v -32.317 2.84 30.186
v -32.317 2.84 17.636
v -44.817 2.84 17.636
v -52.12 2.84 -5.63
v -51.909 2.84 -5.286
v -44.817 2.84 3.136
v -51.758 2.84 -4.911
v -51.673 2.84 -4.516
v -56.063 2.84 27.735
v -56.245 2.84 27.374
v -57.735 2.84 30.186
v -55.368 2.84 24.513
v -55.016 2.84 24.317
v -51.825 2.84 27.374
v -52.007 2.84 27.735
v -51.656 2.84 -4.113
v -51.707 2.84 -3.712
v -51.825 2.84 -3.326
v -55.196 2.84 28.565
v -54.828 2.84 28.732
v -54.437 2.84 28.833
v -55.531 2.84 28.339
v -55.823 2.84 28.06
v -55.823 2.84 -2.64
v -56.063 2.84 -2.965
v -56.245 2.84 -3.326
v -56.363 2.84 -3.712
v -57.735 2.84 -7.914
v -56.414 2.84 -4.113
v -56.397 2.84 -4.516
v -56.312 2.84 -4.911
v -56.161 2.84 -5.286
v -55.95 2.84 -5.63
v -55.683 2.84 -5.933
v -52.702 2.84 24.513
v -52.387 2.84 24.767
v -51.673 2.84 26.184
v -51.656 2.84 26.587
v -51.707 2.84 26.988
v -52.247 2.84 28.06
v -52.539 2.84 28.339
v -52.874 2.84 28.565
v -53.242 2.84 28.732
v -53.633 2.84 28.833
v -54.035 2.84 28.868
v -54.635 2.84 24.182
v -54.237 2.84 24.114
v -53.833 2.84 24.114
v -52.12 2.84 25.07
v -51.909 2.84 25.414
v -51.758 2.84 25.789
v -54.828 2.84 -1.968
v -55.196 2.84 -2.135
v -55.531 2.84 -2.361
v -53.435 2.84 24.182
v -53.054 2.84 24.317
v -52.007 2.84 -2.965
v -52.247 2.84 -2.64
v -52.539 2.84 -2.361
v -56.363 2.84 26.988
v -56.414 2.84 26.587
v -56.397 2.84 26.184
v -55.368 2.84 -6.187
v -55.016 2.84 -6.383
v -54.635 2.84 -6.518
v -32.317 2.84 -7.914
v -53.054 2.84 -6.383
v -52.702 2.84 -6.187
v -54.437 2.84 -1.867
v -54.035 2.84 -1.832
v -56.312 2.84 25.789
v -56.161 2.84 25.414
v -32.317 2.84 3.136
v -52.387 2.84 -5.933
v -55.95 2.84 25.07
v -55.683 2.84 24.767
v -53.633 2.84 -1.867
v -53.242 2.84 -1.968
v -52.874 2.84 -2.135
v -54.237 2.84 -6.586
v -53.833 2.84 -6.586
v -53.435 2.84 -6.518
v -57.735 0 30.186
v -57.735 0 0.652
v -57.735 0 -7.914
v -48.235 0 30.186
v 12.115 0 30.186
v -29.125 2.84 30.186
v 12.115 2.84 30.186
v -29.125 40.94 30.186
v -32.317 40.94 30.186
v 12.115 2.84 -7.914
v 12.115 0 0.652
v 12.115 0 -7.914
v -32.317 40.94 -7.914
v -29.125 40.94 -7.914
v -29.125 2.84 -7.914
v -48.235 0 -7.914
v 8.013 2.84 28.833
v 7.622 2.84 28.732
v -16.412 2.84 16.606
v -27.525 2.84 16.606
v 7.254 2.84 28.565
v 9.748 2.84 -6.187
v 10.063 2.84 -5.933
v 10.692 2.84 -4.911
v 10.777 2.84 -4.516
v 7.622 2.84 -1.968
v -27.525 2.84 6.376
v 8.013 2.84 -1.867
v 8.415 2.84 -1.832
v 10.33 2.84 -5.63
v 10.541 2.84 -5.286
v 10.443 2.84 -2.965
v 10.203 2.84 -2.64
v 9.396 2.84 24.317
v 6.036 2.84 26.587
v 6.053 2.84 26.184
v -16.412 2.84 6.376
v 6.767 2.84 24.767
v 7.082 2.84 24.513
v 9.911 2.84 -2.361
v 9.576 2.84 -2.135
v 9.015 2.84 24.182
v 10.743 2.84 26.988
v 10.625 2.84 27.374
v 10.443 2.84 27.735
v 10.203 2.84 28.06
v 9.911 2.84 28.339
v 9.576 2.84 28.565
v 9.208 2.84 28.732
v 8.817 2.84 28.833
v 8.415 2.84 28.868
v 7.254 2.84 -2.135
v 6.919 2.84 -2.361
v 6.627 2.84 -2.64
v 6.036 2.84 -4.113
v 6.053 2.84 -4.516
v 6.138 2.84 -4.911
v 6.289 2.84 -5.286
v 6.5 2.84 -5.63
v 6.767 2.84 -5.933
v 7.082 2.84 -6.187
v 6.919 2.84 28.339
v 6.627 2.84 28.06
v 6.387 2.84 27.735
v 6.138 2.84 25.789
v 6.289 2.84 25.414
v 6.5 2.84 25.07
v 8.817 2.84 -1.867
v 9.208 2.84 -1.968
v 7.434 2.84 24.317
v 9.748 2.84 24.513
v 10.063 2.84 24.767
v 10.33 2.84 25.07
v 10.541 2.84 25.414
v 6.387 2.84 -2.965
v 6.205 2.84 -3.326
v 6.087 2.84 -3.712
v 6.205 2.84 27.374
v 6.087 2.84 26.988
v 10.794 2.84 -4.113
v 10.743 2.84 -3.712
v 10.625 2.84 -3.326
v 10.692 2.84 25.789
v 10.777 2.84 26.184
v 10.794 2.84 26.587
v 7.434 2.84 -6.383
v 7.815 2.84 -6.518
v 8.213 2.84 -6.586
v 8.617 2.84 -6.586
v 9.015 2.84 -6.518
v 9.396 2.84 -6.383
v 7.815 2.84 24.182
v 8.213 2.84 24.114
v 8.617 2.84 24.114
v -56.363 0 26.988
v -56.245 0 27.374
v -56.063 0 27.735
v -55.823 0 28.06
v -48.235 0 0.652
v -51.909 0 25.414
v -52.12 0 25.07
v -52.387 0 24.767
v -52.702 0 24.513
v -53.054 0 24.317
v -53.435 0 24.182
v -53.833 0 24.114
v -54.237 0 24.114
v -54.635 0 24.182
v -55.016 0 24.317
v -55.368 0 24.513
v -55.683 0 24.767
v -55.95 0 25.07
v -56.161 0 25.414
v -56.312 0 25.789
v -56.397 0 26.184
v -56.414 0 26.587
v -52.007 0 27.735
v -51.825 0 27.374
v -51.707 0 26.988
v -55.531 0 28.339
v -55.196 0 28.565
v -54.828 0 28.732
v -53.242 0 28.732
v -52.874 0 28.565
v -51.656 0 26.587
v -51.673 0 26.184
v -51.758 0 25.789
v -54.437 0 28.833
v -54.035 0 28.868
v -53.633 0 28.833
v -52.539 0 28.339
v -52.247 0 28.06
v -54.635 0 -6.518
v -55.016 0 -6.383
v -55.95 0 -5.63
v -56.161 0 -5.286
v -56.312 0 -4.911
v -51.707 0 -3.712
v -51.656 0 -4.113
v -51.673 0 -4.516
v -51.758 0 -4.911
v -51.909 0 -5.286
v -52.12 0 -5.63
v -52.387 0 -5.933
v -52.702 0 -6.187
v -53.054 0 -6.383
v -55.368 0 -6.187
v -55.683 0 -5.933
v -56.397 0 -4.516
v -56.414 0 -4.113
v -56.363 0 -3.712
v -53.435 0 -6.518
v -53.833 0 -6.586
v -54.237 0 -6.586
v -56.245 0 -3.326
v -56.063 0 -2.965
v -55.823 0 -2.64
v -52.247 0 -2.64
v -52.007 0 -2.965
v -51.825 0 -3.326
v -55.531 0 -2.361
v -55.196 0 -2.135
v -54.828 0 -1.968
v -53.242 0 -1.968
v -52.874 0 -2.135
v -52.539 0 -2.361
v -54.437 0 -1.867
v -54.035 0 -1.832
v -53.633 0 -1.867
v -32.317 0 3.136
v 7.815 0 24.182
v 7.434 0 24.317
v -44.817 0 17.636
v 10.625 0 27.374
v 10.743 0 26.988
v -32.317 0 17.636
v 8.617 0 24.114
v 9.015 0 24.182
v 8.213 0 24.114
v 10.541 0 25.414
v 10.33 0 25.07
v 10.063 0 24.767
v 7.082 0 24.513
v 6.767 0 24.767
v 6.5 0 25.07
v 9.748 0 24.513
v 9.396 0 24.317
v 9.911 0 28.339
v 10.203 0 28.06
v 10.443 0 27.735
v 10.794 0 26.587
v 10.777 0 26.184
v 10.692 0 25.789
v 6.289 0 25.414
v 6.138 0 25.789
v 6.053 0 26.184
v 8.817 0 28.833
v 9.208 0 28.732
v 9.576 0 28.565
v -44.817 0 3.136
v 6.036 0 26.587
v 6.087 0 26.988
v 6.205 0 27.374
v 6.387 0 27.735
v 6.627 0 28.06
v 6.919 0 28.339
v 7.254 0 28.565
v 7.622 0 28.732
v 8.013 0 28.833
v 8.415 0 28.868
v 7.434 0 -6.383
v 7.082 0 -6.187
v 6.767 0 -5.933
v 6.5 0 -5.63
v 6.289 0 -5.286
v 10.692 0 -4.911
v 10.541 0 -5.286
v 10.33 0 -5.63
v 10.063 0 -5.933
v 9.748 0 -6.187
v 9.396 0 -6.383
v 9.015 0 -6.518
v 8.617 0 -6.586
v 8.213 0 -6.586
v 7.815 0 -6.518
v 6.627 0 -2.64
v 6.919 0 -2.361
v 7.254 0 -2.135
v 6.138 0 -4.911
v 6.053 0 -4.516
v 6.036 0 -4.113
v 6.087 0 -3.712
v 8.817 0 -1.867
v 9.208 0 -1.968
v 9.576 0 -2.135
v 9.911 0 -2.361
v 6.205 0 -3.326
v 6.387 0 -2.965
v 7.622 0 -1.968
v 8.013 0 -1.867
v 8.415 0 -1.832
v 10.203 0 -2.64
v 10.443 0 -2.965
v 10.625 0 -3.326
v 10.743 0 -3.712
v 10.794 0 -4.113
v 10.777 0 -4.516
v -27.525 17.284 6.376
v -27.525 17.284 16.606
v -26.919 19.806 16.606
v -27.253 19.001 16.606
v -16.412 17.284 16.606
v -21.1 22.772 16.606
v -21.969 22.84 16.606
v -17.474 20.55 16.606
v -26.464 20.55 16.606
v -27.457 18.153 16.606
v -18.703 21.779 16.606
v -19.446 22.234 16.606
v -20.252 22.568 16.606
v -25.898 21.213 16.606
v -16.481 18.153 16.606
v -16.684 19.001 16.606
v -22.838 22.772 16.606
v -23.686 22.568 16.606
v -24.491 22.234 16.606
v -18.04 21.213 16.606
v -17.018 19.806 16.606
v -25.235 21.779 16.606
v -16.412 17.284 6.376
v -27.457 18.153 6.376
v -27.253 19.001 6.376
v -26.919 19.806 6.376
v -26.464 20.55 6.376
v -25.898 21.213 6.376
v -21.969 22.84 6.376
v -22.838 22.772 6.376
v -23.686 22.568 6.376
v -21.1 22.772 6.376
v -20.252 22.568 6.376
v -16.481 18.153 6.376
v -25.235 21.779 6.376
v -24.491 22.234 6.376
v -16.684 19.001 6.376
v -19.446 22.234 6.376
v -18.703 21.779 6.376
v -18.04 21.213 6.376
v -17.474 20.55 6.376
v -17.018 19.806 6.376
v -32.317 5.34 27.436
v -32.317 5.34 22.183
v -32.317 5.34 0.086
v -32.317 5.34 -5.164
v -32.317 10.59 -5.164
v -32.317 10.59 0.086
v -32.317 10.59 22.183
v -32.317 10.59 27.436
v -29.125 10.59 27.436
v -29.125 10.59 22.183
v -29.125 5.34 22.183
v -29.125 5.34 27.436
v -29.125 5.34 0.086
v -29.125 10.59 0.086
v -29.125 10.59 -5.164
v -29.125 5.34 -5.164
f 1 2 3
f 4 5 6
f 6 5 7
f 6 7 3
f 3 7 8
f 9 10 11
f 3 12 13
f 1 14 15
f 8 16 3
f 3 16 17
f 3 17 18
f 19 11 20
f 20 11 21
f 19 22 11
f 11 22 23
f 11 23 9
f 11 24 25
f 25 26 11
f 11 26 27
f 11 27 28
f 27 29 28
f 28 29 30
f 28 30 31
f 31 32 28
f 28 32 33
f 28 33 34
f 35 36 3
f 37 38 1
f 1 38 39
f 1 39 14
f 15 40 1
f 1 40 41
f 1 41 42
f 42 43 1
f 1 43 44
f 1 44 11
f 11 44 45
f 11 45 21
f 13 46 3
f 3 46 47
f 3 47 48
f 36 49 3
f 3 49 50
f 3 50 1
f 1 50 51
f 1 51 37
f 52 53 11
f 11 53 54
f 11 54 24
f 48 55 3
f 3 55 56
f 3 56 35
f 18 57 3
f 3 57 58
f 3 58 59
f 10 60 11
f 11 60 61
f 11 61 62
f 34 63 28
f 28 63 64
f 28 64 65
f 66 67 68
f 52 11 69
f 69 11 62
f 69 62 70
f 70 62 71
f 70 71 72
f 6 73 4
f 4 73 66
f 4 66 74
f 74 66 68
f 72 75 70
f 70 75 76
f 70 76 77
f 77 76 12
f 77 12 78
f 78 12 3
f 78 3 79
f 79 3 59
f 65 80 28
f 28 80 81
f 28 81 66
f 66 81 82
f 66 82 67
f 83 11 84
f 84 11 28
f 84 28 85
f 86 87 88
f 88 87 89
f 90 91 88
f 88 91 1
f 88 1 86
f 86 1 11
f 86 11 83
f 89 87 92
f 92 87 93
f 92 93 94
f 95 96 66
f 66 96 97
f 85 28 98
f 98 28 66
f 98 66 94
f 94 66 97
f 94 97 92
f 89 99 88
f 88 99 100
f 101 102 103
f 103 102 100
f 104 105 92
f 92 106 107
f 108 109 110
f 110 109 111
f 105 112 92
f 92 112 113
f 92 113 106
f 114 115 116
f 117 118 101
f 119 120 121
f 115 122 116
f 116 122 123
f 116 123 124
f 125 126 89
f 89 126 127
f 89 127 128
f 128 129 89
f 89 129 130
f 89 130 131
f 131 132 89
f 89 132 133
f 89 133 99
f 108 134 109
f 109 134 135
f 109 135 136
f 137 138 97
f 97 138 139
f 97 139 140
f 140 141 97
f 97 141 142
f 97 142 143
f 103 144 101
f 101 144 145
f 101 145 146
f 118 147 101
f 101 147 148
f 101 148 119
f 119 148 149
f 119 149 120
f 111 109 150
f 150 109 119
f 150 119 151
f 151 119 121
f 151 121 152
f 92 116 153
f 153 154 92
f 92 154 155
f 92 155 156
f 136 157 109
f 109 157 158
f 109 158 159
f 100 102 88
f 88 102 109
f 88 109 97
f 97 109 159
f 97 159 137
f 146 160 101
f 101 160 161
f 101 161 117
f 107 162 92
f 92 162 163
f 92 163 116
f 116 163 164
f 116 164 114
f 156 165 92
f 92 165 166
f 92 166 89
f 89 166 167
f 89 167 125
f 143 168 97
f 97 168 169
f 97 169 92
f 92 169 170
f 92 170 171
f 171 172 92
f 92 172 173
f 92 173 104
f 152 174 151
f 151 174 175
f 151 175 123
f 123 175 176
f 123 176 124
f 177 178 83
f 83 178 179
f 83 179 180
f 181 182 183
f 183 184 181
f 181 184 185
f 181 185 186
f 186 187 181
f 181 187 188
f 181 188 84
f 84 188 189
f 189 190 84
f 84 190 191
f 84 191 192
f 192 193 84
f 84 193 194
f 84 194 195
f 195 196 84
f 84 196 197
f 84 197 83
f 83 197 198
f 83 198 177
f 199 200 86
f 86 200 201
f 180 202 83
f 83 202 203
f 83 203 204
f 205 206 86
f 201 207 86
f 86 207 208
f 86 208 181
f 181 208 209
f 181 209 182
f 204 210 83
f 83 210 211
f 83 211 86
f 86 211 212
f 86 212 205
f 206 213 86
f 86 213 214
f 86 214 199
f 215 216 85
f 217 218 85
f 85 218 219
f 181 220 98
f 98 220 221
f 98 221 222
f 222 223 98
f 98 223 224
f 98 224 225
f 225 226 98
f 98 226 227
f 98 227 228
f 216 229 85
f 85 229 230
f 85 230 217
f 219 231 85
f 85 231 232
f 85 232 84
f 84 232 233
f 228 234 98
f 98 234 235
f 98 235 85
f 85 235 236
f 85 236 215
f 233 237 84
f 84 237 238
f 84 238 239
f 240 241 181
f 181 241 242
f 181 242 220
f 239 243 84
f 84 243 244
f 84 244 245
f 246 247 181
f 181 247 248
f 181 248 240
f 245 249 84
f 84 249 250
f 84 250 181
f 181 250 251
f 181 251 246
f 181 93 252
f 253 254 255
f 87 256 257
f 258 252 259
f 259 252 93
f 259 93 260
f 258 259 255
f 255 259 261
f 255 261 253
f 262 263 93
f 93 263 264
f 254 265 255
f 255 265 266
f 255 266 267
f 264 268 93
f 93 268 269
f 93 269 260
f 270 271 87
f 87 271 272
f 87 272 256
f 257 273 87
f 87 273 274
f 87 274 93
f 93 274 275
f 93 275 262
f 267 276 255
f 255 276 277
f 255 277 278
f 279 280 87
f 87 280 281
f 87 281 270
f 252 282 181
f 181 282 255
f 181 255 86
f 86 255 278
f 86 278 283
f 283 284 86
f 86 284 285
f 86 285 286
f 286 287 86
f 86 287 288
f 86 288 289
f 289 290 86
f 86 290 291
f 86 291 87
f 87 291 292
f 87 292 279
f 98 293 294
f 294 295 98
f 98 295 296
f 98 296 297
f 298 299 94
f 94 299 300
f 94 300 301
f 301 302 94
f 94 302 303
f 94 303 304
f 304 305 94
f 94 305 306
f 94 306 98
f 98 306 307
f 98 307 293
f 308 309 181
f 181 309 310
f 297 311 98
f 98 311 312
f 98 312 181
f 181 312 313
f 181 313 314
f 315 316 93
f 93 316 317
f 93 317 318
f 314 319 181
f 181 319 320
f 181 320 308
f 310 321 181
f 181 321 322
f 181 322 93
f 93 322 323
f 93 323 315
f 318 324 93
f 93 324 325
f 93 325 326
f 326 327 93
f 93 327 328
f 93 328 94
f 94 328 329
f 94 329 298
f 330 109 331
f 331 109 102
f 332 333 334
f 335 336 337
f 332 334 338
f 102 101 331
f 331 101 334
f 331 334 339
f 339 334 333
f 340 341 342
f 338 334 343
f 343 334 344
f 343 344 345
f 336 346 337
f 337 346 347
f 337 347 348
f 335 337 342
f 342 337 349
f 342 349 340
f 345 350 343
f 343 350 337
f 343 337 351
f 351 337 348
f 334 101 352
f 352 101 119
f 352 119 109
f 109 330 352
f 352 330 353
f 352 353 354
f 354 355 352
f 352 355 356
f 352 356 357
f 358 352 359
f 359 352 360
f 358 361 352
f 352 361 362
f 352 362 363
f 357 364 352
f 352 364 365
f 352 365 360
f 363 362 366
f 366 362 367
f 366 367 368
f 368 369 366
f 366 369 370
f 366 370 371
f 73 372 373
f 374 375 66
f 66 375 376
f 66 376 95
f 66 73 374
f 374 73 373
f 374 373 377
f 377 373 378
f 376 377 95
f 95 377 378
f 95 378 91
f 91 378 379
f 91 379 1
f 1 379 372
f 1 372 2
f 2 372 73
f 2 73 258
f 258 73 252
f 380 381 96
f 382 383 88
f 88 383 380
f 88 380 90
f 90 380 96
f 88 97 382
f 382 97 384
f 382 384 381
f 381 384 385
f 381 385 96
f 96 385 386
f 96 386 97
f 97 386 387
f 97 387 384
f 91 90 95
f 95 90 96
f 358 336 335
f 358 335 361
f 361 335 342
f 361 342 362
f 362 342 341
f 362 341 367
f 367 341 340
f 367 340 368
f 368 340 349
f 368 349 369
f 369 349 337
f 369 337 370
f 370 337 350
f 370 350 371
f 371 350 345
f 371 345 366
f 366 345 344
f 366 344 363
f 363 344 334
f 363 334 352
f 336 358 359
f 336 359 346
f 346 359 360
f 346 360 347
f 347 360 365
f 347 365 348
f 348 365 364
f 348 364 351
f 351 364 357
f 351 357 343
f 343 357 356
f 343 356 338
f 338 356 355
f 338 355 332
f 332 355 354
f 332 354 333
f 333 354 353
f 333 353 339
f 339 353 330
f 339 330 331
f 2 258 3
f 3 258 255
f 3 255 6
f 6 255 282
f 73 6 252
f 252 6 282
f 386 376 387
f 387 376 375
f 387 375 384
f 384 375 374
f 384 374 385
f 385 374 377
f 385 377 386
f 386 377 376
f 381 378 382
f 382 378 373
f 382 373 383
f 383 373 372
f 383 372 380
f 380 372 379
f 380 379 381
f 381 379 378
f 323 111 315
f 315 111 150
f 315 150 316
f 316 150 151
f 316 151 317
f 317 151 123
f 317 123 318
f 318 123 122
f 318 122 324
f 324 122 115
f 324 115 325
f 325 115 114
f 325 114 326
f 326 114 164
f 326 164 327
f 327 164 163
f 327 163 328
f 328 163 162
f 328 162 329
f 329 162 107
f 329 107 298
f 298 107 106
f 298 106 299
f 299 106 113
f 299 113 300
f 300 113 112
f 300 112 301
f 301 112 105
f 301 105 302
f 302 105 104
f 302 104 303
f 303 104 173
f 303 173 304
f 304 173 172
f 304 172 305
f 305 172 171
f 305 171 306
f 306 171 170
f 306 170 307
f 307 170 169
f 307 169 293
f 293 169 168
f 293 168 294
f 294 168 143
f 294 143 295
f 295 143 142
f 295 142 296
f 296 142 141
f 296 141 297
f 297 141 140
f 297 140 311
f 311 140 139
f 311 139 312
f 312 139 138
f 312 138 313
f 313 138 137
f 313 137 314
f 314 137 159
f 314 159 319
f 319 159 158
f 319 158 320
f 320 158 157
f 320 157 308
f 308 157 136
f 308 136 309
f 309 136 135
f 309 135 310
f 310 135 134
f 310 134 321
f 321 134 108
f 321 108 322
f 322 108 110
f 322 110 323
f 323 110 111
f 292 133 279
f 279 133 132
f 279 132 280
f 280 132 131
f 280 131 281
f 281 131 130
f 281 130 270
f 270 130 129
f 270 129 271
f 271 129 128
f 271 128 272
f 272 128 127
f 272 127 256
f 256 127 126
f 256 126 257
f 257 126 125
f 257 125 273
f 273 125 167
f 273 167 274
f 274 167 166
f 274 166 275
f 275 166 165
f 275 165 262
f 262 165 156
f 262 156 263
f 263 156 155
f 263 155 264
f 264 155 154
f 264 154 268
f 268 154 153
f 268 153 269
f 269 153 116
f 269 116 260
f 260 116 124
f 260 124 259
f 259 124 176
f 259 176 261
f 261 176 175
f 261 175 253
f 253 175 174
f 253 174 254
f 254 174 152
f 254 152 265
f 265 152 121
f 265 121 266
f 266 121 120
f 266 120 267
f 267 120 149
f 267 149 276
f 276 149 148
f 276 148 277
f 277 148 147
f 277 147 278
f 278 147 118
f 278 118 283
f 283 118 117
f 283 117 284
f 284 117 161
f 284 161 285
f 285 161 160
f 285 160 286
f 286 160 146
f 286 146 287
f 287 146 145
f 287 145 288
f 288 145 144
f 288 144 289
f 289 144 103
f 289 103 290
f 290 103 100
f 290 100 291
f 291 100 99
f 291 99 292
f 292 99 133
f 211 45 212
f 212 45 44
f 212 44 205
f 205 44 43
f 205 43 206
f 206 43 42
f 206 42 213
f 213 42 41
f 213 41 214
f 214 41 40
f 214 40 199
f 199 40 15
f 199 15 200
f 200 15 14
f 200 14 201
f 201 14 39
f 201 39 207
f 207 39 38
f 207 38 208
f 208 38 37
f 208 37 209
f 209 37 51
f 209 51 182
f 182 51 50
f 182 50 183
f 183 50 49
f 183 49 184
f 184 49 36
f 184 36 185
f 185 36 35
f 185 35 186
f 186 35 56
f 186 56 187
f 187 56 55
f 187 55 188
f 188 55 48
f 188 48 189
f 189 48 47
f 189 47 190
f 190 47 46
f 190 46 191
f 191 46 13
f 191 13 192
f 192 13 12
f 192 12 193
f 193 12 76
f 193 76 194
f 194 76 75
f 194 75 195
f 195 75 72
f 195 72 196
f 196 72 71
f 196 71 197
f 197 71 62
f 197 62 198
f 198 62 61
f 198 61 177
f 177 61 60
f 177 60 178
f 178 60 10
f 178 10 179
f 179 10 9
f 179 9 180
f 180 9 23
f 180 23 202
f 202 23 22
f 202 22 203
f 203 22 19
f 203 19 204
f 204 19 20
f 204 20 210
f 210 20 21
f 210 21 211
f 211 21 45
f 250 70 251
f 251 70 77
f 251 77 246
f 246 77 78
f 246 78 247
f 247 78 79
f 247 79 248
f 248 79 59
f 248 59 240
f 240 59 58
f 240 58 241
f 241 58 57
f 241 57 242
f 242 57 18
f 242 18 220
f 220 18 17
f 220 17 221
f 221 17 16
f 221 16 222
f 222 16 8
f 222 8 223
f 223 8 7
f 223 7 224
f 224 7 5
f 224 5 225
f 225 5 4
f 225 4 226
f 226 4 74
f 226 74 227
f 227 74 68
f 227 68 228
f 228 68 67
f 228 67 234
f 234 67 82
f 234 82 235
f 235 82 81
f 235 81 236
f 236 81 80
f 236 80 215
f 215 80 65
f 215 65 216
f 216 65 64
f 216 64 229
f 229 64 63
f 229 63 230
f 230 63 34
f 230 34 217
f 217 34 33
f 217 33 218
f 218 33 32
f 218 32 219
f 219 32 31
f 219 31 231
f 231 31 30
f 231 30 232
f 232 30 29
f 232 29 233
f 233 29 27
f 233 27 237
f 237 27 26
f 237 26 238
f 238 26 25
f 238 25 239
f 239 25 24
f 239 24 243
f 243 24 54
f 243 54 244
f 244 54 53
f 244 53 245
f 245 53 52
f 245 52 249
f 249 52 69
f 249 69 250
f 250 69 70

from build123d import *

# Parameters (mm, degrees)
SKETCH1_W           = 69.85
SKETCH1_H           = 38.1
BOSS_EXTRUDE1_DEPTH = 2.84
SKETCH2_W           = 11.1125
SKETCH2_H           = 10.23
BOSS_EXTRUDE5_DEPTH = 20
SKETCH4_W           = 3.192184281
SKETCH4_H           = 38.1
BOSS_EXTRUDE7_DEPTH = 38.1
FILLET1_R           = 5.55625
FILLET2_R           = 5.55625
SKETCH5_W           = 8
SKETCH5_H           = 14.5
CUT_EXTRUDE1_DEPTH  = 38.1
SKETCH6_W           = 5.25
SKETCH6_H           = 5.25
CUT_EXTRUDE2_DEPTH  = 10
SKETCH7_W           = 5.253
SKETCH7_H           = 5.25
CUT_EXTRUDE3_DEPTH  = 10
SKETCH8_R           = 2.38125
CUT_EXTRUDE4_DEPTH  = 10
SKETCH9_R           = 2.38125
CUT_EXTRUDE5_DEPTH  = 10
SKETCH10_W          = 4.5
SKETCH10_H          = 14.5
CUT_EXTRUDE6_DEPTH  = 10
SKETCH12_R          = 2.38125
CUT_EXTRUDE7_DEPTH  = 10
SKETCH13_R          = 2.38125
CUT_EXTRUDE8_DEPTH  = 10


with BuildPart() as part:
    # Sketch1 → Boss-Extrude1 (new body)
    with BuildSketch(Plane(origin=(0, 0, 0), x_dir=(1, 0, 0), z_dir=(0, 1, 0))):
        with Locations((-22.809987281, -11.136378688)):
            Rectangle(SKETCH1_W, SKETCH1_H)
    extrude(amount=BOSS_EXTRUDE1_DEPTH)

    # Sketch2 → Boss-Extrude5 (add)
    with BuildSketch(Plane(origin=(0, 2.84, 0), x_dir=(1, 0, 0), z_dir=(0, 1, 0))):
        with Locations((-21.968737281, -11.491378688)):
            Rectangle(SKETCH2_W, SKETCH2_H)
    extrude(amount=BOSS_EXTRUDE5_DEPTH)

    # Sketch4 → Boss-Extrude7 (add)
    with BuildSketch(Plane(origin=(0, 2.84, 0), x_dir=(1, 0, 0), z_dir=(0, 1, 0))):
        with Locations((-30.721079422, -11.136378688)):
            Rectangle(SKETCH4_W, SKETCH4_H)
    extrude(amount=BOSS_EXTRUDE7_DEPTH)

    # Fillet1
    fillet1_edges = [part.edges().sort_by_distance(p)[0] for p in [
        (-16.412487281, 22.84, 11.491378688),
    ]]
    fillet(fillet1_edges, radius=FILLET1_R)

    # Fillet2
    fillet2_edges = [part.edges().sort_by_distance(p)[0] for p in [
        (-27.524987281, 22.84, 11.491378688),
    ]]
    fillet(fillet2_edges, radius=FILLET2_R - 0.0001)  # a hair under: the kernel refuses the full size

    # Sketch5 → Cut-Extrude1 (cut)
    with BuildSketch(Plane(origin=(0, 2.84, 0), x_dir=(1, 0, 0), z_dir=(0, 1, 0))):
        with Locations((-40.817171562, -10.386378688)):
            Rectangle(SKETCH5_W, SKETCH5_H)
    extrude(amount=-CUT_EXTRUDE1_DEPTH, mode=Mode.SUBTRACT)

    # Sketch6 → Cut-Extrude2 (cut)
    with BuildSketch(Plane(origin=(-29.124987281, 0, 0), x_dir=(0, 0, -1), z_dir=(1, 0, 0))):
        with Locations((2.538621312, 7.965)):
            Rectangle(SKETCH6_W, SKETCH6_H)
    extrude(amount=-CUT_EXTRUDE2_DEPTH, mode=Mode.SUBTRACT)

    # Sketch7 → Cut-Extrude3 (cut)
    with BuildSketch(Plane(origin=(-29.124987281, 0, 0), x_dir=(0, 0, -1), z_dir=(1, 0, 0))):
        with Locations((-24.809878688, 7.965)):
            Rectangle(SKETCH7_W, SKETCH7_H)
    extrude(amount=-CUT_EXTRUDE3_DEPTH, mode=Mode.SUBTRACT)

    # Sketch8 → Cut-Extrude4 (cut)
    with BuildSketch(Plane(origin=(0, 2.84, 0), x_dir=(1, 0, 0), z_dir=(0, 1, 0))):
        with Locations(Location((8.415012719, 4.213621312, 0), (0, 0, 270))):
            Circle(SKETCH8_R)
    extrude(amount=-CUT_EXTRUDE4_DEPTH, mode=Mode.SUBTRACT)

    # Sketch9 → Cut-Extrude5 (cut)
    with BuildSketch(Plane(origin=(0, 2.84, 0), x_dir=(1, 0, 0), z_dir=(0, 1, 0))):
        with Locations(Location((8.415012719, -26.486378688, 0), (0, 0, 270))):
            Circle(SKETCH9_R)
    extrude(amount=-CUT_EXTRUDE5_DEPTH, mode=Mode.SUBTRACT)

    # Sketch10 → Cut-Extrude6 (cut)
    with BuildSketch(Plane(origin=(0, 2.84, 0), x_dir=(1, 0, 0), z_dir=(0, 1, 0))):
        with Locations((-34.567171562, -10.386378688)):
            Rectangle(SKETCH10_W, SKETCH10_H)
    extrude(amount=-CUT_EXTRUDE6_DEPTH, mode=Mode.SUBTRACT)

    # Sketch12 → Cut-Extrude7 (cut)
    with BuildSketch(Plane(origin=(0, 2.84, 0), x_dir=(1, 0, 0), z_dir=(0, 1, 0))):
        with Locations(Location((-54.034987281, -26.486378688, 0), (0, 0, 270))):
            Circle(SKETCH12_R)
    extrude(amount=-CUT_EXTRUDE7_DEPTH, mode=Mode.SUBTRACT)

    # Sketch13 → Cut-Extrude8 (cut)
    with BuildSketch(Plane(origin=(0, 2.84, 0), x_dir=(1, 0, 0), z_dir=(0, 1, 0))):
        with Locations(Location((-54.034987281, 4.213621312, 0), (0, 0, 270))):
            Circle(SKETCH13_R)
    extrude(amount=-CUT_EXTRUDE8_DEPTH, mode=Mode.SUBTRACT)


solid = part.part
